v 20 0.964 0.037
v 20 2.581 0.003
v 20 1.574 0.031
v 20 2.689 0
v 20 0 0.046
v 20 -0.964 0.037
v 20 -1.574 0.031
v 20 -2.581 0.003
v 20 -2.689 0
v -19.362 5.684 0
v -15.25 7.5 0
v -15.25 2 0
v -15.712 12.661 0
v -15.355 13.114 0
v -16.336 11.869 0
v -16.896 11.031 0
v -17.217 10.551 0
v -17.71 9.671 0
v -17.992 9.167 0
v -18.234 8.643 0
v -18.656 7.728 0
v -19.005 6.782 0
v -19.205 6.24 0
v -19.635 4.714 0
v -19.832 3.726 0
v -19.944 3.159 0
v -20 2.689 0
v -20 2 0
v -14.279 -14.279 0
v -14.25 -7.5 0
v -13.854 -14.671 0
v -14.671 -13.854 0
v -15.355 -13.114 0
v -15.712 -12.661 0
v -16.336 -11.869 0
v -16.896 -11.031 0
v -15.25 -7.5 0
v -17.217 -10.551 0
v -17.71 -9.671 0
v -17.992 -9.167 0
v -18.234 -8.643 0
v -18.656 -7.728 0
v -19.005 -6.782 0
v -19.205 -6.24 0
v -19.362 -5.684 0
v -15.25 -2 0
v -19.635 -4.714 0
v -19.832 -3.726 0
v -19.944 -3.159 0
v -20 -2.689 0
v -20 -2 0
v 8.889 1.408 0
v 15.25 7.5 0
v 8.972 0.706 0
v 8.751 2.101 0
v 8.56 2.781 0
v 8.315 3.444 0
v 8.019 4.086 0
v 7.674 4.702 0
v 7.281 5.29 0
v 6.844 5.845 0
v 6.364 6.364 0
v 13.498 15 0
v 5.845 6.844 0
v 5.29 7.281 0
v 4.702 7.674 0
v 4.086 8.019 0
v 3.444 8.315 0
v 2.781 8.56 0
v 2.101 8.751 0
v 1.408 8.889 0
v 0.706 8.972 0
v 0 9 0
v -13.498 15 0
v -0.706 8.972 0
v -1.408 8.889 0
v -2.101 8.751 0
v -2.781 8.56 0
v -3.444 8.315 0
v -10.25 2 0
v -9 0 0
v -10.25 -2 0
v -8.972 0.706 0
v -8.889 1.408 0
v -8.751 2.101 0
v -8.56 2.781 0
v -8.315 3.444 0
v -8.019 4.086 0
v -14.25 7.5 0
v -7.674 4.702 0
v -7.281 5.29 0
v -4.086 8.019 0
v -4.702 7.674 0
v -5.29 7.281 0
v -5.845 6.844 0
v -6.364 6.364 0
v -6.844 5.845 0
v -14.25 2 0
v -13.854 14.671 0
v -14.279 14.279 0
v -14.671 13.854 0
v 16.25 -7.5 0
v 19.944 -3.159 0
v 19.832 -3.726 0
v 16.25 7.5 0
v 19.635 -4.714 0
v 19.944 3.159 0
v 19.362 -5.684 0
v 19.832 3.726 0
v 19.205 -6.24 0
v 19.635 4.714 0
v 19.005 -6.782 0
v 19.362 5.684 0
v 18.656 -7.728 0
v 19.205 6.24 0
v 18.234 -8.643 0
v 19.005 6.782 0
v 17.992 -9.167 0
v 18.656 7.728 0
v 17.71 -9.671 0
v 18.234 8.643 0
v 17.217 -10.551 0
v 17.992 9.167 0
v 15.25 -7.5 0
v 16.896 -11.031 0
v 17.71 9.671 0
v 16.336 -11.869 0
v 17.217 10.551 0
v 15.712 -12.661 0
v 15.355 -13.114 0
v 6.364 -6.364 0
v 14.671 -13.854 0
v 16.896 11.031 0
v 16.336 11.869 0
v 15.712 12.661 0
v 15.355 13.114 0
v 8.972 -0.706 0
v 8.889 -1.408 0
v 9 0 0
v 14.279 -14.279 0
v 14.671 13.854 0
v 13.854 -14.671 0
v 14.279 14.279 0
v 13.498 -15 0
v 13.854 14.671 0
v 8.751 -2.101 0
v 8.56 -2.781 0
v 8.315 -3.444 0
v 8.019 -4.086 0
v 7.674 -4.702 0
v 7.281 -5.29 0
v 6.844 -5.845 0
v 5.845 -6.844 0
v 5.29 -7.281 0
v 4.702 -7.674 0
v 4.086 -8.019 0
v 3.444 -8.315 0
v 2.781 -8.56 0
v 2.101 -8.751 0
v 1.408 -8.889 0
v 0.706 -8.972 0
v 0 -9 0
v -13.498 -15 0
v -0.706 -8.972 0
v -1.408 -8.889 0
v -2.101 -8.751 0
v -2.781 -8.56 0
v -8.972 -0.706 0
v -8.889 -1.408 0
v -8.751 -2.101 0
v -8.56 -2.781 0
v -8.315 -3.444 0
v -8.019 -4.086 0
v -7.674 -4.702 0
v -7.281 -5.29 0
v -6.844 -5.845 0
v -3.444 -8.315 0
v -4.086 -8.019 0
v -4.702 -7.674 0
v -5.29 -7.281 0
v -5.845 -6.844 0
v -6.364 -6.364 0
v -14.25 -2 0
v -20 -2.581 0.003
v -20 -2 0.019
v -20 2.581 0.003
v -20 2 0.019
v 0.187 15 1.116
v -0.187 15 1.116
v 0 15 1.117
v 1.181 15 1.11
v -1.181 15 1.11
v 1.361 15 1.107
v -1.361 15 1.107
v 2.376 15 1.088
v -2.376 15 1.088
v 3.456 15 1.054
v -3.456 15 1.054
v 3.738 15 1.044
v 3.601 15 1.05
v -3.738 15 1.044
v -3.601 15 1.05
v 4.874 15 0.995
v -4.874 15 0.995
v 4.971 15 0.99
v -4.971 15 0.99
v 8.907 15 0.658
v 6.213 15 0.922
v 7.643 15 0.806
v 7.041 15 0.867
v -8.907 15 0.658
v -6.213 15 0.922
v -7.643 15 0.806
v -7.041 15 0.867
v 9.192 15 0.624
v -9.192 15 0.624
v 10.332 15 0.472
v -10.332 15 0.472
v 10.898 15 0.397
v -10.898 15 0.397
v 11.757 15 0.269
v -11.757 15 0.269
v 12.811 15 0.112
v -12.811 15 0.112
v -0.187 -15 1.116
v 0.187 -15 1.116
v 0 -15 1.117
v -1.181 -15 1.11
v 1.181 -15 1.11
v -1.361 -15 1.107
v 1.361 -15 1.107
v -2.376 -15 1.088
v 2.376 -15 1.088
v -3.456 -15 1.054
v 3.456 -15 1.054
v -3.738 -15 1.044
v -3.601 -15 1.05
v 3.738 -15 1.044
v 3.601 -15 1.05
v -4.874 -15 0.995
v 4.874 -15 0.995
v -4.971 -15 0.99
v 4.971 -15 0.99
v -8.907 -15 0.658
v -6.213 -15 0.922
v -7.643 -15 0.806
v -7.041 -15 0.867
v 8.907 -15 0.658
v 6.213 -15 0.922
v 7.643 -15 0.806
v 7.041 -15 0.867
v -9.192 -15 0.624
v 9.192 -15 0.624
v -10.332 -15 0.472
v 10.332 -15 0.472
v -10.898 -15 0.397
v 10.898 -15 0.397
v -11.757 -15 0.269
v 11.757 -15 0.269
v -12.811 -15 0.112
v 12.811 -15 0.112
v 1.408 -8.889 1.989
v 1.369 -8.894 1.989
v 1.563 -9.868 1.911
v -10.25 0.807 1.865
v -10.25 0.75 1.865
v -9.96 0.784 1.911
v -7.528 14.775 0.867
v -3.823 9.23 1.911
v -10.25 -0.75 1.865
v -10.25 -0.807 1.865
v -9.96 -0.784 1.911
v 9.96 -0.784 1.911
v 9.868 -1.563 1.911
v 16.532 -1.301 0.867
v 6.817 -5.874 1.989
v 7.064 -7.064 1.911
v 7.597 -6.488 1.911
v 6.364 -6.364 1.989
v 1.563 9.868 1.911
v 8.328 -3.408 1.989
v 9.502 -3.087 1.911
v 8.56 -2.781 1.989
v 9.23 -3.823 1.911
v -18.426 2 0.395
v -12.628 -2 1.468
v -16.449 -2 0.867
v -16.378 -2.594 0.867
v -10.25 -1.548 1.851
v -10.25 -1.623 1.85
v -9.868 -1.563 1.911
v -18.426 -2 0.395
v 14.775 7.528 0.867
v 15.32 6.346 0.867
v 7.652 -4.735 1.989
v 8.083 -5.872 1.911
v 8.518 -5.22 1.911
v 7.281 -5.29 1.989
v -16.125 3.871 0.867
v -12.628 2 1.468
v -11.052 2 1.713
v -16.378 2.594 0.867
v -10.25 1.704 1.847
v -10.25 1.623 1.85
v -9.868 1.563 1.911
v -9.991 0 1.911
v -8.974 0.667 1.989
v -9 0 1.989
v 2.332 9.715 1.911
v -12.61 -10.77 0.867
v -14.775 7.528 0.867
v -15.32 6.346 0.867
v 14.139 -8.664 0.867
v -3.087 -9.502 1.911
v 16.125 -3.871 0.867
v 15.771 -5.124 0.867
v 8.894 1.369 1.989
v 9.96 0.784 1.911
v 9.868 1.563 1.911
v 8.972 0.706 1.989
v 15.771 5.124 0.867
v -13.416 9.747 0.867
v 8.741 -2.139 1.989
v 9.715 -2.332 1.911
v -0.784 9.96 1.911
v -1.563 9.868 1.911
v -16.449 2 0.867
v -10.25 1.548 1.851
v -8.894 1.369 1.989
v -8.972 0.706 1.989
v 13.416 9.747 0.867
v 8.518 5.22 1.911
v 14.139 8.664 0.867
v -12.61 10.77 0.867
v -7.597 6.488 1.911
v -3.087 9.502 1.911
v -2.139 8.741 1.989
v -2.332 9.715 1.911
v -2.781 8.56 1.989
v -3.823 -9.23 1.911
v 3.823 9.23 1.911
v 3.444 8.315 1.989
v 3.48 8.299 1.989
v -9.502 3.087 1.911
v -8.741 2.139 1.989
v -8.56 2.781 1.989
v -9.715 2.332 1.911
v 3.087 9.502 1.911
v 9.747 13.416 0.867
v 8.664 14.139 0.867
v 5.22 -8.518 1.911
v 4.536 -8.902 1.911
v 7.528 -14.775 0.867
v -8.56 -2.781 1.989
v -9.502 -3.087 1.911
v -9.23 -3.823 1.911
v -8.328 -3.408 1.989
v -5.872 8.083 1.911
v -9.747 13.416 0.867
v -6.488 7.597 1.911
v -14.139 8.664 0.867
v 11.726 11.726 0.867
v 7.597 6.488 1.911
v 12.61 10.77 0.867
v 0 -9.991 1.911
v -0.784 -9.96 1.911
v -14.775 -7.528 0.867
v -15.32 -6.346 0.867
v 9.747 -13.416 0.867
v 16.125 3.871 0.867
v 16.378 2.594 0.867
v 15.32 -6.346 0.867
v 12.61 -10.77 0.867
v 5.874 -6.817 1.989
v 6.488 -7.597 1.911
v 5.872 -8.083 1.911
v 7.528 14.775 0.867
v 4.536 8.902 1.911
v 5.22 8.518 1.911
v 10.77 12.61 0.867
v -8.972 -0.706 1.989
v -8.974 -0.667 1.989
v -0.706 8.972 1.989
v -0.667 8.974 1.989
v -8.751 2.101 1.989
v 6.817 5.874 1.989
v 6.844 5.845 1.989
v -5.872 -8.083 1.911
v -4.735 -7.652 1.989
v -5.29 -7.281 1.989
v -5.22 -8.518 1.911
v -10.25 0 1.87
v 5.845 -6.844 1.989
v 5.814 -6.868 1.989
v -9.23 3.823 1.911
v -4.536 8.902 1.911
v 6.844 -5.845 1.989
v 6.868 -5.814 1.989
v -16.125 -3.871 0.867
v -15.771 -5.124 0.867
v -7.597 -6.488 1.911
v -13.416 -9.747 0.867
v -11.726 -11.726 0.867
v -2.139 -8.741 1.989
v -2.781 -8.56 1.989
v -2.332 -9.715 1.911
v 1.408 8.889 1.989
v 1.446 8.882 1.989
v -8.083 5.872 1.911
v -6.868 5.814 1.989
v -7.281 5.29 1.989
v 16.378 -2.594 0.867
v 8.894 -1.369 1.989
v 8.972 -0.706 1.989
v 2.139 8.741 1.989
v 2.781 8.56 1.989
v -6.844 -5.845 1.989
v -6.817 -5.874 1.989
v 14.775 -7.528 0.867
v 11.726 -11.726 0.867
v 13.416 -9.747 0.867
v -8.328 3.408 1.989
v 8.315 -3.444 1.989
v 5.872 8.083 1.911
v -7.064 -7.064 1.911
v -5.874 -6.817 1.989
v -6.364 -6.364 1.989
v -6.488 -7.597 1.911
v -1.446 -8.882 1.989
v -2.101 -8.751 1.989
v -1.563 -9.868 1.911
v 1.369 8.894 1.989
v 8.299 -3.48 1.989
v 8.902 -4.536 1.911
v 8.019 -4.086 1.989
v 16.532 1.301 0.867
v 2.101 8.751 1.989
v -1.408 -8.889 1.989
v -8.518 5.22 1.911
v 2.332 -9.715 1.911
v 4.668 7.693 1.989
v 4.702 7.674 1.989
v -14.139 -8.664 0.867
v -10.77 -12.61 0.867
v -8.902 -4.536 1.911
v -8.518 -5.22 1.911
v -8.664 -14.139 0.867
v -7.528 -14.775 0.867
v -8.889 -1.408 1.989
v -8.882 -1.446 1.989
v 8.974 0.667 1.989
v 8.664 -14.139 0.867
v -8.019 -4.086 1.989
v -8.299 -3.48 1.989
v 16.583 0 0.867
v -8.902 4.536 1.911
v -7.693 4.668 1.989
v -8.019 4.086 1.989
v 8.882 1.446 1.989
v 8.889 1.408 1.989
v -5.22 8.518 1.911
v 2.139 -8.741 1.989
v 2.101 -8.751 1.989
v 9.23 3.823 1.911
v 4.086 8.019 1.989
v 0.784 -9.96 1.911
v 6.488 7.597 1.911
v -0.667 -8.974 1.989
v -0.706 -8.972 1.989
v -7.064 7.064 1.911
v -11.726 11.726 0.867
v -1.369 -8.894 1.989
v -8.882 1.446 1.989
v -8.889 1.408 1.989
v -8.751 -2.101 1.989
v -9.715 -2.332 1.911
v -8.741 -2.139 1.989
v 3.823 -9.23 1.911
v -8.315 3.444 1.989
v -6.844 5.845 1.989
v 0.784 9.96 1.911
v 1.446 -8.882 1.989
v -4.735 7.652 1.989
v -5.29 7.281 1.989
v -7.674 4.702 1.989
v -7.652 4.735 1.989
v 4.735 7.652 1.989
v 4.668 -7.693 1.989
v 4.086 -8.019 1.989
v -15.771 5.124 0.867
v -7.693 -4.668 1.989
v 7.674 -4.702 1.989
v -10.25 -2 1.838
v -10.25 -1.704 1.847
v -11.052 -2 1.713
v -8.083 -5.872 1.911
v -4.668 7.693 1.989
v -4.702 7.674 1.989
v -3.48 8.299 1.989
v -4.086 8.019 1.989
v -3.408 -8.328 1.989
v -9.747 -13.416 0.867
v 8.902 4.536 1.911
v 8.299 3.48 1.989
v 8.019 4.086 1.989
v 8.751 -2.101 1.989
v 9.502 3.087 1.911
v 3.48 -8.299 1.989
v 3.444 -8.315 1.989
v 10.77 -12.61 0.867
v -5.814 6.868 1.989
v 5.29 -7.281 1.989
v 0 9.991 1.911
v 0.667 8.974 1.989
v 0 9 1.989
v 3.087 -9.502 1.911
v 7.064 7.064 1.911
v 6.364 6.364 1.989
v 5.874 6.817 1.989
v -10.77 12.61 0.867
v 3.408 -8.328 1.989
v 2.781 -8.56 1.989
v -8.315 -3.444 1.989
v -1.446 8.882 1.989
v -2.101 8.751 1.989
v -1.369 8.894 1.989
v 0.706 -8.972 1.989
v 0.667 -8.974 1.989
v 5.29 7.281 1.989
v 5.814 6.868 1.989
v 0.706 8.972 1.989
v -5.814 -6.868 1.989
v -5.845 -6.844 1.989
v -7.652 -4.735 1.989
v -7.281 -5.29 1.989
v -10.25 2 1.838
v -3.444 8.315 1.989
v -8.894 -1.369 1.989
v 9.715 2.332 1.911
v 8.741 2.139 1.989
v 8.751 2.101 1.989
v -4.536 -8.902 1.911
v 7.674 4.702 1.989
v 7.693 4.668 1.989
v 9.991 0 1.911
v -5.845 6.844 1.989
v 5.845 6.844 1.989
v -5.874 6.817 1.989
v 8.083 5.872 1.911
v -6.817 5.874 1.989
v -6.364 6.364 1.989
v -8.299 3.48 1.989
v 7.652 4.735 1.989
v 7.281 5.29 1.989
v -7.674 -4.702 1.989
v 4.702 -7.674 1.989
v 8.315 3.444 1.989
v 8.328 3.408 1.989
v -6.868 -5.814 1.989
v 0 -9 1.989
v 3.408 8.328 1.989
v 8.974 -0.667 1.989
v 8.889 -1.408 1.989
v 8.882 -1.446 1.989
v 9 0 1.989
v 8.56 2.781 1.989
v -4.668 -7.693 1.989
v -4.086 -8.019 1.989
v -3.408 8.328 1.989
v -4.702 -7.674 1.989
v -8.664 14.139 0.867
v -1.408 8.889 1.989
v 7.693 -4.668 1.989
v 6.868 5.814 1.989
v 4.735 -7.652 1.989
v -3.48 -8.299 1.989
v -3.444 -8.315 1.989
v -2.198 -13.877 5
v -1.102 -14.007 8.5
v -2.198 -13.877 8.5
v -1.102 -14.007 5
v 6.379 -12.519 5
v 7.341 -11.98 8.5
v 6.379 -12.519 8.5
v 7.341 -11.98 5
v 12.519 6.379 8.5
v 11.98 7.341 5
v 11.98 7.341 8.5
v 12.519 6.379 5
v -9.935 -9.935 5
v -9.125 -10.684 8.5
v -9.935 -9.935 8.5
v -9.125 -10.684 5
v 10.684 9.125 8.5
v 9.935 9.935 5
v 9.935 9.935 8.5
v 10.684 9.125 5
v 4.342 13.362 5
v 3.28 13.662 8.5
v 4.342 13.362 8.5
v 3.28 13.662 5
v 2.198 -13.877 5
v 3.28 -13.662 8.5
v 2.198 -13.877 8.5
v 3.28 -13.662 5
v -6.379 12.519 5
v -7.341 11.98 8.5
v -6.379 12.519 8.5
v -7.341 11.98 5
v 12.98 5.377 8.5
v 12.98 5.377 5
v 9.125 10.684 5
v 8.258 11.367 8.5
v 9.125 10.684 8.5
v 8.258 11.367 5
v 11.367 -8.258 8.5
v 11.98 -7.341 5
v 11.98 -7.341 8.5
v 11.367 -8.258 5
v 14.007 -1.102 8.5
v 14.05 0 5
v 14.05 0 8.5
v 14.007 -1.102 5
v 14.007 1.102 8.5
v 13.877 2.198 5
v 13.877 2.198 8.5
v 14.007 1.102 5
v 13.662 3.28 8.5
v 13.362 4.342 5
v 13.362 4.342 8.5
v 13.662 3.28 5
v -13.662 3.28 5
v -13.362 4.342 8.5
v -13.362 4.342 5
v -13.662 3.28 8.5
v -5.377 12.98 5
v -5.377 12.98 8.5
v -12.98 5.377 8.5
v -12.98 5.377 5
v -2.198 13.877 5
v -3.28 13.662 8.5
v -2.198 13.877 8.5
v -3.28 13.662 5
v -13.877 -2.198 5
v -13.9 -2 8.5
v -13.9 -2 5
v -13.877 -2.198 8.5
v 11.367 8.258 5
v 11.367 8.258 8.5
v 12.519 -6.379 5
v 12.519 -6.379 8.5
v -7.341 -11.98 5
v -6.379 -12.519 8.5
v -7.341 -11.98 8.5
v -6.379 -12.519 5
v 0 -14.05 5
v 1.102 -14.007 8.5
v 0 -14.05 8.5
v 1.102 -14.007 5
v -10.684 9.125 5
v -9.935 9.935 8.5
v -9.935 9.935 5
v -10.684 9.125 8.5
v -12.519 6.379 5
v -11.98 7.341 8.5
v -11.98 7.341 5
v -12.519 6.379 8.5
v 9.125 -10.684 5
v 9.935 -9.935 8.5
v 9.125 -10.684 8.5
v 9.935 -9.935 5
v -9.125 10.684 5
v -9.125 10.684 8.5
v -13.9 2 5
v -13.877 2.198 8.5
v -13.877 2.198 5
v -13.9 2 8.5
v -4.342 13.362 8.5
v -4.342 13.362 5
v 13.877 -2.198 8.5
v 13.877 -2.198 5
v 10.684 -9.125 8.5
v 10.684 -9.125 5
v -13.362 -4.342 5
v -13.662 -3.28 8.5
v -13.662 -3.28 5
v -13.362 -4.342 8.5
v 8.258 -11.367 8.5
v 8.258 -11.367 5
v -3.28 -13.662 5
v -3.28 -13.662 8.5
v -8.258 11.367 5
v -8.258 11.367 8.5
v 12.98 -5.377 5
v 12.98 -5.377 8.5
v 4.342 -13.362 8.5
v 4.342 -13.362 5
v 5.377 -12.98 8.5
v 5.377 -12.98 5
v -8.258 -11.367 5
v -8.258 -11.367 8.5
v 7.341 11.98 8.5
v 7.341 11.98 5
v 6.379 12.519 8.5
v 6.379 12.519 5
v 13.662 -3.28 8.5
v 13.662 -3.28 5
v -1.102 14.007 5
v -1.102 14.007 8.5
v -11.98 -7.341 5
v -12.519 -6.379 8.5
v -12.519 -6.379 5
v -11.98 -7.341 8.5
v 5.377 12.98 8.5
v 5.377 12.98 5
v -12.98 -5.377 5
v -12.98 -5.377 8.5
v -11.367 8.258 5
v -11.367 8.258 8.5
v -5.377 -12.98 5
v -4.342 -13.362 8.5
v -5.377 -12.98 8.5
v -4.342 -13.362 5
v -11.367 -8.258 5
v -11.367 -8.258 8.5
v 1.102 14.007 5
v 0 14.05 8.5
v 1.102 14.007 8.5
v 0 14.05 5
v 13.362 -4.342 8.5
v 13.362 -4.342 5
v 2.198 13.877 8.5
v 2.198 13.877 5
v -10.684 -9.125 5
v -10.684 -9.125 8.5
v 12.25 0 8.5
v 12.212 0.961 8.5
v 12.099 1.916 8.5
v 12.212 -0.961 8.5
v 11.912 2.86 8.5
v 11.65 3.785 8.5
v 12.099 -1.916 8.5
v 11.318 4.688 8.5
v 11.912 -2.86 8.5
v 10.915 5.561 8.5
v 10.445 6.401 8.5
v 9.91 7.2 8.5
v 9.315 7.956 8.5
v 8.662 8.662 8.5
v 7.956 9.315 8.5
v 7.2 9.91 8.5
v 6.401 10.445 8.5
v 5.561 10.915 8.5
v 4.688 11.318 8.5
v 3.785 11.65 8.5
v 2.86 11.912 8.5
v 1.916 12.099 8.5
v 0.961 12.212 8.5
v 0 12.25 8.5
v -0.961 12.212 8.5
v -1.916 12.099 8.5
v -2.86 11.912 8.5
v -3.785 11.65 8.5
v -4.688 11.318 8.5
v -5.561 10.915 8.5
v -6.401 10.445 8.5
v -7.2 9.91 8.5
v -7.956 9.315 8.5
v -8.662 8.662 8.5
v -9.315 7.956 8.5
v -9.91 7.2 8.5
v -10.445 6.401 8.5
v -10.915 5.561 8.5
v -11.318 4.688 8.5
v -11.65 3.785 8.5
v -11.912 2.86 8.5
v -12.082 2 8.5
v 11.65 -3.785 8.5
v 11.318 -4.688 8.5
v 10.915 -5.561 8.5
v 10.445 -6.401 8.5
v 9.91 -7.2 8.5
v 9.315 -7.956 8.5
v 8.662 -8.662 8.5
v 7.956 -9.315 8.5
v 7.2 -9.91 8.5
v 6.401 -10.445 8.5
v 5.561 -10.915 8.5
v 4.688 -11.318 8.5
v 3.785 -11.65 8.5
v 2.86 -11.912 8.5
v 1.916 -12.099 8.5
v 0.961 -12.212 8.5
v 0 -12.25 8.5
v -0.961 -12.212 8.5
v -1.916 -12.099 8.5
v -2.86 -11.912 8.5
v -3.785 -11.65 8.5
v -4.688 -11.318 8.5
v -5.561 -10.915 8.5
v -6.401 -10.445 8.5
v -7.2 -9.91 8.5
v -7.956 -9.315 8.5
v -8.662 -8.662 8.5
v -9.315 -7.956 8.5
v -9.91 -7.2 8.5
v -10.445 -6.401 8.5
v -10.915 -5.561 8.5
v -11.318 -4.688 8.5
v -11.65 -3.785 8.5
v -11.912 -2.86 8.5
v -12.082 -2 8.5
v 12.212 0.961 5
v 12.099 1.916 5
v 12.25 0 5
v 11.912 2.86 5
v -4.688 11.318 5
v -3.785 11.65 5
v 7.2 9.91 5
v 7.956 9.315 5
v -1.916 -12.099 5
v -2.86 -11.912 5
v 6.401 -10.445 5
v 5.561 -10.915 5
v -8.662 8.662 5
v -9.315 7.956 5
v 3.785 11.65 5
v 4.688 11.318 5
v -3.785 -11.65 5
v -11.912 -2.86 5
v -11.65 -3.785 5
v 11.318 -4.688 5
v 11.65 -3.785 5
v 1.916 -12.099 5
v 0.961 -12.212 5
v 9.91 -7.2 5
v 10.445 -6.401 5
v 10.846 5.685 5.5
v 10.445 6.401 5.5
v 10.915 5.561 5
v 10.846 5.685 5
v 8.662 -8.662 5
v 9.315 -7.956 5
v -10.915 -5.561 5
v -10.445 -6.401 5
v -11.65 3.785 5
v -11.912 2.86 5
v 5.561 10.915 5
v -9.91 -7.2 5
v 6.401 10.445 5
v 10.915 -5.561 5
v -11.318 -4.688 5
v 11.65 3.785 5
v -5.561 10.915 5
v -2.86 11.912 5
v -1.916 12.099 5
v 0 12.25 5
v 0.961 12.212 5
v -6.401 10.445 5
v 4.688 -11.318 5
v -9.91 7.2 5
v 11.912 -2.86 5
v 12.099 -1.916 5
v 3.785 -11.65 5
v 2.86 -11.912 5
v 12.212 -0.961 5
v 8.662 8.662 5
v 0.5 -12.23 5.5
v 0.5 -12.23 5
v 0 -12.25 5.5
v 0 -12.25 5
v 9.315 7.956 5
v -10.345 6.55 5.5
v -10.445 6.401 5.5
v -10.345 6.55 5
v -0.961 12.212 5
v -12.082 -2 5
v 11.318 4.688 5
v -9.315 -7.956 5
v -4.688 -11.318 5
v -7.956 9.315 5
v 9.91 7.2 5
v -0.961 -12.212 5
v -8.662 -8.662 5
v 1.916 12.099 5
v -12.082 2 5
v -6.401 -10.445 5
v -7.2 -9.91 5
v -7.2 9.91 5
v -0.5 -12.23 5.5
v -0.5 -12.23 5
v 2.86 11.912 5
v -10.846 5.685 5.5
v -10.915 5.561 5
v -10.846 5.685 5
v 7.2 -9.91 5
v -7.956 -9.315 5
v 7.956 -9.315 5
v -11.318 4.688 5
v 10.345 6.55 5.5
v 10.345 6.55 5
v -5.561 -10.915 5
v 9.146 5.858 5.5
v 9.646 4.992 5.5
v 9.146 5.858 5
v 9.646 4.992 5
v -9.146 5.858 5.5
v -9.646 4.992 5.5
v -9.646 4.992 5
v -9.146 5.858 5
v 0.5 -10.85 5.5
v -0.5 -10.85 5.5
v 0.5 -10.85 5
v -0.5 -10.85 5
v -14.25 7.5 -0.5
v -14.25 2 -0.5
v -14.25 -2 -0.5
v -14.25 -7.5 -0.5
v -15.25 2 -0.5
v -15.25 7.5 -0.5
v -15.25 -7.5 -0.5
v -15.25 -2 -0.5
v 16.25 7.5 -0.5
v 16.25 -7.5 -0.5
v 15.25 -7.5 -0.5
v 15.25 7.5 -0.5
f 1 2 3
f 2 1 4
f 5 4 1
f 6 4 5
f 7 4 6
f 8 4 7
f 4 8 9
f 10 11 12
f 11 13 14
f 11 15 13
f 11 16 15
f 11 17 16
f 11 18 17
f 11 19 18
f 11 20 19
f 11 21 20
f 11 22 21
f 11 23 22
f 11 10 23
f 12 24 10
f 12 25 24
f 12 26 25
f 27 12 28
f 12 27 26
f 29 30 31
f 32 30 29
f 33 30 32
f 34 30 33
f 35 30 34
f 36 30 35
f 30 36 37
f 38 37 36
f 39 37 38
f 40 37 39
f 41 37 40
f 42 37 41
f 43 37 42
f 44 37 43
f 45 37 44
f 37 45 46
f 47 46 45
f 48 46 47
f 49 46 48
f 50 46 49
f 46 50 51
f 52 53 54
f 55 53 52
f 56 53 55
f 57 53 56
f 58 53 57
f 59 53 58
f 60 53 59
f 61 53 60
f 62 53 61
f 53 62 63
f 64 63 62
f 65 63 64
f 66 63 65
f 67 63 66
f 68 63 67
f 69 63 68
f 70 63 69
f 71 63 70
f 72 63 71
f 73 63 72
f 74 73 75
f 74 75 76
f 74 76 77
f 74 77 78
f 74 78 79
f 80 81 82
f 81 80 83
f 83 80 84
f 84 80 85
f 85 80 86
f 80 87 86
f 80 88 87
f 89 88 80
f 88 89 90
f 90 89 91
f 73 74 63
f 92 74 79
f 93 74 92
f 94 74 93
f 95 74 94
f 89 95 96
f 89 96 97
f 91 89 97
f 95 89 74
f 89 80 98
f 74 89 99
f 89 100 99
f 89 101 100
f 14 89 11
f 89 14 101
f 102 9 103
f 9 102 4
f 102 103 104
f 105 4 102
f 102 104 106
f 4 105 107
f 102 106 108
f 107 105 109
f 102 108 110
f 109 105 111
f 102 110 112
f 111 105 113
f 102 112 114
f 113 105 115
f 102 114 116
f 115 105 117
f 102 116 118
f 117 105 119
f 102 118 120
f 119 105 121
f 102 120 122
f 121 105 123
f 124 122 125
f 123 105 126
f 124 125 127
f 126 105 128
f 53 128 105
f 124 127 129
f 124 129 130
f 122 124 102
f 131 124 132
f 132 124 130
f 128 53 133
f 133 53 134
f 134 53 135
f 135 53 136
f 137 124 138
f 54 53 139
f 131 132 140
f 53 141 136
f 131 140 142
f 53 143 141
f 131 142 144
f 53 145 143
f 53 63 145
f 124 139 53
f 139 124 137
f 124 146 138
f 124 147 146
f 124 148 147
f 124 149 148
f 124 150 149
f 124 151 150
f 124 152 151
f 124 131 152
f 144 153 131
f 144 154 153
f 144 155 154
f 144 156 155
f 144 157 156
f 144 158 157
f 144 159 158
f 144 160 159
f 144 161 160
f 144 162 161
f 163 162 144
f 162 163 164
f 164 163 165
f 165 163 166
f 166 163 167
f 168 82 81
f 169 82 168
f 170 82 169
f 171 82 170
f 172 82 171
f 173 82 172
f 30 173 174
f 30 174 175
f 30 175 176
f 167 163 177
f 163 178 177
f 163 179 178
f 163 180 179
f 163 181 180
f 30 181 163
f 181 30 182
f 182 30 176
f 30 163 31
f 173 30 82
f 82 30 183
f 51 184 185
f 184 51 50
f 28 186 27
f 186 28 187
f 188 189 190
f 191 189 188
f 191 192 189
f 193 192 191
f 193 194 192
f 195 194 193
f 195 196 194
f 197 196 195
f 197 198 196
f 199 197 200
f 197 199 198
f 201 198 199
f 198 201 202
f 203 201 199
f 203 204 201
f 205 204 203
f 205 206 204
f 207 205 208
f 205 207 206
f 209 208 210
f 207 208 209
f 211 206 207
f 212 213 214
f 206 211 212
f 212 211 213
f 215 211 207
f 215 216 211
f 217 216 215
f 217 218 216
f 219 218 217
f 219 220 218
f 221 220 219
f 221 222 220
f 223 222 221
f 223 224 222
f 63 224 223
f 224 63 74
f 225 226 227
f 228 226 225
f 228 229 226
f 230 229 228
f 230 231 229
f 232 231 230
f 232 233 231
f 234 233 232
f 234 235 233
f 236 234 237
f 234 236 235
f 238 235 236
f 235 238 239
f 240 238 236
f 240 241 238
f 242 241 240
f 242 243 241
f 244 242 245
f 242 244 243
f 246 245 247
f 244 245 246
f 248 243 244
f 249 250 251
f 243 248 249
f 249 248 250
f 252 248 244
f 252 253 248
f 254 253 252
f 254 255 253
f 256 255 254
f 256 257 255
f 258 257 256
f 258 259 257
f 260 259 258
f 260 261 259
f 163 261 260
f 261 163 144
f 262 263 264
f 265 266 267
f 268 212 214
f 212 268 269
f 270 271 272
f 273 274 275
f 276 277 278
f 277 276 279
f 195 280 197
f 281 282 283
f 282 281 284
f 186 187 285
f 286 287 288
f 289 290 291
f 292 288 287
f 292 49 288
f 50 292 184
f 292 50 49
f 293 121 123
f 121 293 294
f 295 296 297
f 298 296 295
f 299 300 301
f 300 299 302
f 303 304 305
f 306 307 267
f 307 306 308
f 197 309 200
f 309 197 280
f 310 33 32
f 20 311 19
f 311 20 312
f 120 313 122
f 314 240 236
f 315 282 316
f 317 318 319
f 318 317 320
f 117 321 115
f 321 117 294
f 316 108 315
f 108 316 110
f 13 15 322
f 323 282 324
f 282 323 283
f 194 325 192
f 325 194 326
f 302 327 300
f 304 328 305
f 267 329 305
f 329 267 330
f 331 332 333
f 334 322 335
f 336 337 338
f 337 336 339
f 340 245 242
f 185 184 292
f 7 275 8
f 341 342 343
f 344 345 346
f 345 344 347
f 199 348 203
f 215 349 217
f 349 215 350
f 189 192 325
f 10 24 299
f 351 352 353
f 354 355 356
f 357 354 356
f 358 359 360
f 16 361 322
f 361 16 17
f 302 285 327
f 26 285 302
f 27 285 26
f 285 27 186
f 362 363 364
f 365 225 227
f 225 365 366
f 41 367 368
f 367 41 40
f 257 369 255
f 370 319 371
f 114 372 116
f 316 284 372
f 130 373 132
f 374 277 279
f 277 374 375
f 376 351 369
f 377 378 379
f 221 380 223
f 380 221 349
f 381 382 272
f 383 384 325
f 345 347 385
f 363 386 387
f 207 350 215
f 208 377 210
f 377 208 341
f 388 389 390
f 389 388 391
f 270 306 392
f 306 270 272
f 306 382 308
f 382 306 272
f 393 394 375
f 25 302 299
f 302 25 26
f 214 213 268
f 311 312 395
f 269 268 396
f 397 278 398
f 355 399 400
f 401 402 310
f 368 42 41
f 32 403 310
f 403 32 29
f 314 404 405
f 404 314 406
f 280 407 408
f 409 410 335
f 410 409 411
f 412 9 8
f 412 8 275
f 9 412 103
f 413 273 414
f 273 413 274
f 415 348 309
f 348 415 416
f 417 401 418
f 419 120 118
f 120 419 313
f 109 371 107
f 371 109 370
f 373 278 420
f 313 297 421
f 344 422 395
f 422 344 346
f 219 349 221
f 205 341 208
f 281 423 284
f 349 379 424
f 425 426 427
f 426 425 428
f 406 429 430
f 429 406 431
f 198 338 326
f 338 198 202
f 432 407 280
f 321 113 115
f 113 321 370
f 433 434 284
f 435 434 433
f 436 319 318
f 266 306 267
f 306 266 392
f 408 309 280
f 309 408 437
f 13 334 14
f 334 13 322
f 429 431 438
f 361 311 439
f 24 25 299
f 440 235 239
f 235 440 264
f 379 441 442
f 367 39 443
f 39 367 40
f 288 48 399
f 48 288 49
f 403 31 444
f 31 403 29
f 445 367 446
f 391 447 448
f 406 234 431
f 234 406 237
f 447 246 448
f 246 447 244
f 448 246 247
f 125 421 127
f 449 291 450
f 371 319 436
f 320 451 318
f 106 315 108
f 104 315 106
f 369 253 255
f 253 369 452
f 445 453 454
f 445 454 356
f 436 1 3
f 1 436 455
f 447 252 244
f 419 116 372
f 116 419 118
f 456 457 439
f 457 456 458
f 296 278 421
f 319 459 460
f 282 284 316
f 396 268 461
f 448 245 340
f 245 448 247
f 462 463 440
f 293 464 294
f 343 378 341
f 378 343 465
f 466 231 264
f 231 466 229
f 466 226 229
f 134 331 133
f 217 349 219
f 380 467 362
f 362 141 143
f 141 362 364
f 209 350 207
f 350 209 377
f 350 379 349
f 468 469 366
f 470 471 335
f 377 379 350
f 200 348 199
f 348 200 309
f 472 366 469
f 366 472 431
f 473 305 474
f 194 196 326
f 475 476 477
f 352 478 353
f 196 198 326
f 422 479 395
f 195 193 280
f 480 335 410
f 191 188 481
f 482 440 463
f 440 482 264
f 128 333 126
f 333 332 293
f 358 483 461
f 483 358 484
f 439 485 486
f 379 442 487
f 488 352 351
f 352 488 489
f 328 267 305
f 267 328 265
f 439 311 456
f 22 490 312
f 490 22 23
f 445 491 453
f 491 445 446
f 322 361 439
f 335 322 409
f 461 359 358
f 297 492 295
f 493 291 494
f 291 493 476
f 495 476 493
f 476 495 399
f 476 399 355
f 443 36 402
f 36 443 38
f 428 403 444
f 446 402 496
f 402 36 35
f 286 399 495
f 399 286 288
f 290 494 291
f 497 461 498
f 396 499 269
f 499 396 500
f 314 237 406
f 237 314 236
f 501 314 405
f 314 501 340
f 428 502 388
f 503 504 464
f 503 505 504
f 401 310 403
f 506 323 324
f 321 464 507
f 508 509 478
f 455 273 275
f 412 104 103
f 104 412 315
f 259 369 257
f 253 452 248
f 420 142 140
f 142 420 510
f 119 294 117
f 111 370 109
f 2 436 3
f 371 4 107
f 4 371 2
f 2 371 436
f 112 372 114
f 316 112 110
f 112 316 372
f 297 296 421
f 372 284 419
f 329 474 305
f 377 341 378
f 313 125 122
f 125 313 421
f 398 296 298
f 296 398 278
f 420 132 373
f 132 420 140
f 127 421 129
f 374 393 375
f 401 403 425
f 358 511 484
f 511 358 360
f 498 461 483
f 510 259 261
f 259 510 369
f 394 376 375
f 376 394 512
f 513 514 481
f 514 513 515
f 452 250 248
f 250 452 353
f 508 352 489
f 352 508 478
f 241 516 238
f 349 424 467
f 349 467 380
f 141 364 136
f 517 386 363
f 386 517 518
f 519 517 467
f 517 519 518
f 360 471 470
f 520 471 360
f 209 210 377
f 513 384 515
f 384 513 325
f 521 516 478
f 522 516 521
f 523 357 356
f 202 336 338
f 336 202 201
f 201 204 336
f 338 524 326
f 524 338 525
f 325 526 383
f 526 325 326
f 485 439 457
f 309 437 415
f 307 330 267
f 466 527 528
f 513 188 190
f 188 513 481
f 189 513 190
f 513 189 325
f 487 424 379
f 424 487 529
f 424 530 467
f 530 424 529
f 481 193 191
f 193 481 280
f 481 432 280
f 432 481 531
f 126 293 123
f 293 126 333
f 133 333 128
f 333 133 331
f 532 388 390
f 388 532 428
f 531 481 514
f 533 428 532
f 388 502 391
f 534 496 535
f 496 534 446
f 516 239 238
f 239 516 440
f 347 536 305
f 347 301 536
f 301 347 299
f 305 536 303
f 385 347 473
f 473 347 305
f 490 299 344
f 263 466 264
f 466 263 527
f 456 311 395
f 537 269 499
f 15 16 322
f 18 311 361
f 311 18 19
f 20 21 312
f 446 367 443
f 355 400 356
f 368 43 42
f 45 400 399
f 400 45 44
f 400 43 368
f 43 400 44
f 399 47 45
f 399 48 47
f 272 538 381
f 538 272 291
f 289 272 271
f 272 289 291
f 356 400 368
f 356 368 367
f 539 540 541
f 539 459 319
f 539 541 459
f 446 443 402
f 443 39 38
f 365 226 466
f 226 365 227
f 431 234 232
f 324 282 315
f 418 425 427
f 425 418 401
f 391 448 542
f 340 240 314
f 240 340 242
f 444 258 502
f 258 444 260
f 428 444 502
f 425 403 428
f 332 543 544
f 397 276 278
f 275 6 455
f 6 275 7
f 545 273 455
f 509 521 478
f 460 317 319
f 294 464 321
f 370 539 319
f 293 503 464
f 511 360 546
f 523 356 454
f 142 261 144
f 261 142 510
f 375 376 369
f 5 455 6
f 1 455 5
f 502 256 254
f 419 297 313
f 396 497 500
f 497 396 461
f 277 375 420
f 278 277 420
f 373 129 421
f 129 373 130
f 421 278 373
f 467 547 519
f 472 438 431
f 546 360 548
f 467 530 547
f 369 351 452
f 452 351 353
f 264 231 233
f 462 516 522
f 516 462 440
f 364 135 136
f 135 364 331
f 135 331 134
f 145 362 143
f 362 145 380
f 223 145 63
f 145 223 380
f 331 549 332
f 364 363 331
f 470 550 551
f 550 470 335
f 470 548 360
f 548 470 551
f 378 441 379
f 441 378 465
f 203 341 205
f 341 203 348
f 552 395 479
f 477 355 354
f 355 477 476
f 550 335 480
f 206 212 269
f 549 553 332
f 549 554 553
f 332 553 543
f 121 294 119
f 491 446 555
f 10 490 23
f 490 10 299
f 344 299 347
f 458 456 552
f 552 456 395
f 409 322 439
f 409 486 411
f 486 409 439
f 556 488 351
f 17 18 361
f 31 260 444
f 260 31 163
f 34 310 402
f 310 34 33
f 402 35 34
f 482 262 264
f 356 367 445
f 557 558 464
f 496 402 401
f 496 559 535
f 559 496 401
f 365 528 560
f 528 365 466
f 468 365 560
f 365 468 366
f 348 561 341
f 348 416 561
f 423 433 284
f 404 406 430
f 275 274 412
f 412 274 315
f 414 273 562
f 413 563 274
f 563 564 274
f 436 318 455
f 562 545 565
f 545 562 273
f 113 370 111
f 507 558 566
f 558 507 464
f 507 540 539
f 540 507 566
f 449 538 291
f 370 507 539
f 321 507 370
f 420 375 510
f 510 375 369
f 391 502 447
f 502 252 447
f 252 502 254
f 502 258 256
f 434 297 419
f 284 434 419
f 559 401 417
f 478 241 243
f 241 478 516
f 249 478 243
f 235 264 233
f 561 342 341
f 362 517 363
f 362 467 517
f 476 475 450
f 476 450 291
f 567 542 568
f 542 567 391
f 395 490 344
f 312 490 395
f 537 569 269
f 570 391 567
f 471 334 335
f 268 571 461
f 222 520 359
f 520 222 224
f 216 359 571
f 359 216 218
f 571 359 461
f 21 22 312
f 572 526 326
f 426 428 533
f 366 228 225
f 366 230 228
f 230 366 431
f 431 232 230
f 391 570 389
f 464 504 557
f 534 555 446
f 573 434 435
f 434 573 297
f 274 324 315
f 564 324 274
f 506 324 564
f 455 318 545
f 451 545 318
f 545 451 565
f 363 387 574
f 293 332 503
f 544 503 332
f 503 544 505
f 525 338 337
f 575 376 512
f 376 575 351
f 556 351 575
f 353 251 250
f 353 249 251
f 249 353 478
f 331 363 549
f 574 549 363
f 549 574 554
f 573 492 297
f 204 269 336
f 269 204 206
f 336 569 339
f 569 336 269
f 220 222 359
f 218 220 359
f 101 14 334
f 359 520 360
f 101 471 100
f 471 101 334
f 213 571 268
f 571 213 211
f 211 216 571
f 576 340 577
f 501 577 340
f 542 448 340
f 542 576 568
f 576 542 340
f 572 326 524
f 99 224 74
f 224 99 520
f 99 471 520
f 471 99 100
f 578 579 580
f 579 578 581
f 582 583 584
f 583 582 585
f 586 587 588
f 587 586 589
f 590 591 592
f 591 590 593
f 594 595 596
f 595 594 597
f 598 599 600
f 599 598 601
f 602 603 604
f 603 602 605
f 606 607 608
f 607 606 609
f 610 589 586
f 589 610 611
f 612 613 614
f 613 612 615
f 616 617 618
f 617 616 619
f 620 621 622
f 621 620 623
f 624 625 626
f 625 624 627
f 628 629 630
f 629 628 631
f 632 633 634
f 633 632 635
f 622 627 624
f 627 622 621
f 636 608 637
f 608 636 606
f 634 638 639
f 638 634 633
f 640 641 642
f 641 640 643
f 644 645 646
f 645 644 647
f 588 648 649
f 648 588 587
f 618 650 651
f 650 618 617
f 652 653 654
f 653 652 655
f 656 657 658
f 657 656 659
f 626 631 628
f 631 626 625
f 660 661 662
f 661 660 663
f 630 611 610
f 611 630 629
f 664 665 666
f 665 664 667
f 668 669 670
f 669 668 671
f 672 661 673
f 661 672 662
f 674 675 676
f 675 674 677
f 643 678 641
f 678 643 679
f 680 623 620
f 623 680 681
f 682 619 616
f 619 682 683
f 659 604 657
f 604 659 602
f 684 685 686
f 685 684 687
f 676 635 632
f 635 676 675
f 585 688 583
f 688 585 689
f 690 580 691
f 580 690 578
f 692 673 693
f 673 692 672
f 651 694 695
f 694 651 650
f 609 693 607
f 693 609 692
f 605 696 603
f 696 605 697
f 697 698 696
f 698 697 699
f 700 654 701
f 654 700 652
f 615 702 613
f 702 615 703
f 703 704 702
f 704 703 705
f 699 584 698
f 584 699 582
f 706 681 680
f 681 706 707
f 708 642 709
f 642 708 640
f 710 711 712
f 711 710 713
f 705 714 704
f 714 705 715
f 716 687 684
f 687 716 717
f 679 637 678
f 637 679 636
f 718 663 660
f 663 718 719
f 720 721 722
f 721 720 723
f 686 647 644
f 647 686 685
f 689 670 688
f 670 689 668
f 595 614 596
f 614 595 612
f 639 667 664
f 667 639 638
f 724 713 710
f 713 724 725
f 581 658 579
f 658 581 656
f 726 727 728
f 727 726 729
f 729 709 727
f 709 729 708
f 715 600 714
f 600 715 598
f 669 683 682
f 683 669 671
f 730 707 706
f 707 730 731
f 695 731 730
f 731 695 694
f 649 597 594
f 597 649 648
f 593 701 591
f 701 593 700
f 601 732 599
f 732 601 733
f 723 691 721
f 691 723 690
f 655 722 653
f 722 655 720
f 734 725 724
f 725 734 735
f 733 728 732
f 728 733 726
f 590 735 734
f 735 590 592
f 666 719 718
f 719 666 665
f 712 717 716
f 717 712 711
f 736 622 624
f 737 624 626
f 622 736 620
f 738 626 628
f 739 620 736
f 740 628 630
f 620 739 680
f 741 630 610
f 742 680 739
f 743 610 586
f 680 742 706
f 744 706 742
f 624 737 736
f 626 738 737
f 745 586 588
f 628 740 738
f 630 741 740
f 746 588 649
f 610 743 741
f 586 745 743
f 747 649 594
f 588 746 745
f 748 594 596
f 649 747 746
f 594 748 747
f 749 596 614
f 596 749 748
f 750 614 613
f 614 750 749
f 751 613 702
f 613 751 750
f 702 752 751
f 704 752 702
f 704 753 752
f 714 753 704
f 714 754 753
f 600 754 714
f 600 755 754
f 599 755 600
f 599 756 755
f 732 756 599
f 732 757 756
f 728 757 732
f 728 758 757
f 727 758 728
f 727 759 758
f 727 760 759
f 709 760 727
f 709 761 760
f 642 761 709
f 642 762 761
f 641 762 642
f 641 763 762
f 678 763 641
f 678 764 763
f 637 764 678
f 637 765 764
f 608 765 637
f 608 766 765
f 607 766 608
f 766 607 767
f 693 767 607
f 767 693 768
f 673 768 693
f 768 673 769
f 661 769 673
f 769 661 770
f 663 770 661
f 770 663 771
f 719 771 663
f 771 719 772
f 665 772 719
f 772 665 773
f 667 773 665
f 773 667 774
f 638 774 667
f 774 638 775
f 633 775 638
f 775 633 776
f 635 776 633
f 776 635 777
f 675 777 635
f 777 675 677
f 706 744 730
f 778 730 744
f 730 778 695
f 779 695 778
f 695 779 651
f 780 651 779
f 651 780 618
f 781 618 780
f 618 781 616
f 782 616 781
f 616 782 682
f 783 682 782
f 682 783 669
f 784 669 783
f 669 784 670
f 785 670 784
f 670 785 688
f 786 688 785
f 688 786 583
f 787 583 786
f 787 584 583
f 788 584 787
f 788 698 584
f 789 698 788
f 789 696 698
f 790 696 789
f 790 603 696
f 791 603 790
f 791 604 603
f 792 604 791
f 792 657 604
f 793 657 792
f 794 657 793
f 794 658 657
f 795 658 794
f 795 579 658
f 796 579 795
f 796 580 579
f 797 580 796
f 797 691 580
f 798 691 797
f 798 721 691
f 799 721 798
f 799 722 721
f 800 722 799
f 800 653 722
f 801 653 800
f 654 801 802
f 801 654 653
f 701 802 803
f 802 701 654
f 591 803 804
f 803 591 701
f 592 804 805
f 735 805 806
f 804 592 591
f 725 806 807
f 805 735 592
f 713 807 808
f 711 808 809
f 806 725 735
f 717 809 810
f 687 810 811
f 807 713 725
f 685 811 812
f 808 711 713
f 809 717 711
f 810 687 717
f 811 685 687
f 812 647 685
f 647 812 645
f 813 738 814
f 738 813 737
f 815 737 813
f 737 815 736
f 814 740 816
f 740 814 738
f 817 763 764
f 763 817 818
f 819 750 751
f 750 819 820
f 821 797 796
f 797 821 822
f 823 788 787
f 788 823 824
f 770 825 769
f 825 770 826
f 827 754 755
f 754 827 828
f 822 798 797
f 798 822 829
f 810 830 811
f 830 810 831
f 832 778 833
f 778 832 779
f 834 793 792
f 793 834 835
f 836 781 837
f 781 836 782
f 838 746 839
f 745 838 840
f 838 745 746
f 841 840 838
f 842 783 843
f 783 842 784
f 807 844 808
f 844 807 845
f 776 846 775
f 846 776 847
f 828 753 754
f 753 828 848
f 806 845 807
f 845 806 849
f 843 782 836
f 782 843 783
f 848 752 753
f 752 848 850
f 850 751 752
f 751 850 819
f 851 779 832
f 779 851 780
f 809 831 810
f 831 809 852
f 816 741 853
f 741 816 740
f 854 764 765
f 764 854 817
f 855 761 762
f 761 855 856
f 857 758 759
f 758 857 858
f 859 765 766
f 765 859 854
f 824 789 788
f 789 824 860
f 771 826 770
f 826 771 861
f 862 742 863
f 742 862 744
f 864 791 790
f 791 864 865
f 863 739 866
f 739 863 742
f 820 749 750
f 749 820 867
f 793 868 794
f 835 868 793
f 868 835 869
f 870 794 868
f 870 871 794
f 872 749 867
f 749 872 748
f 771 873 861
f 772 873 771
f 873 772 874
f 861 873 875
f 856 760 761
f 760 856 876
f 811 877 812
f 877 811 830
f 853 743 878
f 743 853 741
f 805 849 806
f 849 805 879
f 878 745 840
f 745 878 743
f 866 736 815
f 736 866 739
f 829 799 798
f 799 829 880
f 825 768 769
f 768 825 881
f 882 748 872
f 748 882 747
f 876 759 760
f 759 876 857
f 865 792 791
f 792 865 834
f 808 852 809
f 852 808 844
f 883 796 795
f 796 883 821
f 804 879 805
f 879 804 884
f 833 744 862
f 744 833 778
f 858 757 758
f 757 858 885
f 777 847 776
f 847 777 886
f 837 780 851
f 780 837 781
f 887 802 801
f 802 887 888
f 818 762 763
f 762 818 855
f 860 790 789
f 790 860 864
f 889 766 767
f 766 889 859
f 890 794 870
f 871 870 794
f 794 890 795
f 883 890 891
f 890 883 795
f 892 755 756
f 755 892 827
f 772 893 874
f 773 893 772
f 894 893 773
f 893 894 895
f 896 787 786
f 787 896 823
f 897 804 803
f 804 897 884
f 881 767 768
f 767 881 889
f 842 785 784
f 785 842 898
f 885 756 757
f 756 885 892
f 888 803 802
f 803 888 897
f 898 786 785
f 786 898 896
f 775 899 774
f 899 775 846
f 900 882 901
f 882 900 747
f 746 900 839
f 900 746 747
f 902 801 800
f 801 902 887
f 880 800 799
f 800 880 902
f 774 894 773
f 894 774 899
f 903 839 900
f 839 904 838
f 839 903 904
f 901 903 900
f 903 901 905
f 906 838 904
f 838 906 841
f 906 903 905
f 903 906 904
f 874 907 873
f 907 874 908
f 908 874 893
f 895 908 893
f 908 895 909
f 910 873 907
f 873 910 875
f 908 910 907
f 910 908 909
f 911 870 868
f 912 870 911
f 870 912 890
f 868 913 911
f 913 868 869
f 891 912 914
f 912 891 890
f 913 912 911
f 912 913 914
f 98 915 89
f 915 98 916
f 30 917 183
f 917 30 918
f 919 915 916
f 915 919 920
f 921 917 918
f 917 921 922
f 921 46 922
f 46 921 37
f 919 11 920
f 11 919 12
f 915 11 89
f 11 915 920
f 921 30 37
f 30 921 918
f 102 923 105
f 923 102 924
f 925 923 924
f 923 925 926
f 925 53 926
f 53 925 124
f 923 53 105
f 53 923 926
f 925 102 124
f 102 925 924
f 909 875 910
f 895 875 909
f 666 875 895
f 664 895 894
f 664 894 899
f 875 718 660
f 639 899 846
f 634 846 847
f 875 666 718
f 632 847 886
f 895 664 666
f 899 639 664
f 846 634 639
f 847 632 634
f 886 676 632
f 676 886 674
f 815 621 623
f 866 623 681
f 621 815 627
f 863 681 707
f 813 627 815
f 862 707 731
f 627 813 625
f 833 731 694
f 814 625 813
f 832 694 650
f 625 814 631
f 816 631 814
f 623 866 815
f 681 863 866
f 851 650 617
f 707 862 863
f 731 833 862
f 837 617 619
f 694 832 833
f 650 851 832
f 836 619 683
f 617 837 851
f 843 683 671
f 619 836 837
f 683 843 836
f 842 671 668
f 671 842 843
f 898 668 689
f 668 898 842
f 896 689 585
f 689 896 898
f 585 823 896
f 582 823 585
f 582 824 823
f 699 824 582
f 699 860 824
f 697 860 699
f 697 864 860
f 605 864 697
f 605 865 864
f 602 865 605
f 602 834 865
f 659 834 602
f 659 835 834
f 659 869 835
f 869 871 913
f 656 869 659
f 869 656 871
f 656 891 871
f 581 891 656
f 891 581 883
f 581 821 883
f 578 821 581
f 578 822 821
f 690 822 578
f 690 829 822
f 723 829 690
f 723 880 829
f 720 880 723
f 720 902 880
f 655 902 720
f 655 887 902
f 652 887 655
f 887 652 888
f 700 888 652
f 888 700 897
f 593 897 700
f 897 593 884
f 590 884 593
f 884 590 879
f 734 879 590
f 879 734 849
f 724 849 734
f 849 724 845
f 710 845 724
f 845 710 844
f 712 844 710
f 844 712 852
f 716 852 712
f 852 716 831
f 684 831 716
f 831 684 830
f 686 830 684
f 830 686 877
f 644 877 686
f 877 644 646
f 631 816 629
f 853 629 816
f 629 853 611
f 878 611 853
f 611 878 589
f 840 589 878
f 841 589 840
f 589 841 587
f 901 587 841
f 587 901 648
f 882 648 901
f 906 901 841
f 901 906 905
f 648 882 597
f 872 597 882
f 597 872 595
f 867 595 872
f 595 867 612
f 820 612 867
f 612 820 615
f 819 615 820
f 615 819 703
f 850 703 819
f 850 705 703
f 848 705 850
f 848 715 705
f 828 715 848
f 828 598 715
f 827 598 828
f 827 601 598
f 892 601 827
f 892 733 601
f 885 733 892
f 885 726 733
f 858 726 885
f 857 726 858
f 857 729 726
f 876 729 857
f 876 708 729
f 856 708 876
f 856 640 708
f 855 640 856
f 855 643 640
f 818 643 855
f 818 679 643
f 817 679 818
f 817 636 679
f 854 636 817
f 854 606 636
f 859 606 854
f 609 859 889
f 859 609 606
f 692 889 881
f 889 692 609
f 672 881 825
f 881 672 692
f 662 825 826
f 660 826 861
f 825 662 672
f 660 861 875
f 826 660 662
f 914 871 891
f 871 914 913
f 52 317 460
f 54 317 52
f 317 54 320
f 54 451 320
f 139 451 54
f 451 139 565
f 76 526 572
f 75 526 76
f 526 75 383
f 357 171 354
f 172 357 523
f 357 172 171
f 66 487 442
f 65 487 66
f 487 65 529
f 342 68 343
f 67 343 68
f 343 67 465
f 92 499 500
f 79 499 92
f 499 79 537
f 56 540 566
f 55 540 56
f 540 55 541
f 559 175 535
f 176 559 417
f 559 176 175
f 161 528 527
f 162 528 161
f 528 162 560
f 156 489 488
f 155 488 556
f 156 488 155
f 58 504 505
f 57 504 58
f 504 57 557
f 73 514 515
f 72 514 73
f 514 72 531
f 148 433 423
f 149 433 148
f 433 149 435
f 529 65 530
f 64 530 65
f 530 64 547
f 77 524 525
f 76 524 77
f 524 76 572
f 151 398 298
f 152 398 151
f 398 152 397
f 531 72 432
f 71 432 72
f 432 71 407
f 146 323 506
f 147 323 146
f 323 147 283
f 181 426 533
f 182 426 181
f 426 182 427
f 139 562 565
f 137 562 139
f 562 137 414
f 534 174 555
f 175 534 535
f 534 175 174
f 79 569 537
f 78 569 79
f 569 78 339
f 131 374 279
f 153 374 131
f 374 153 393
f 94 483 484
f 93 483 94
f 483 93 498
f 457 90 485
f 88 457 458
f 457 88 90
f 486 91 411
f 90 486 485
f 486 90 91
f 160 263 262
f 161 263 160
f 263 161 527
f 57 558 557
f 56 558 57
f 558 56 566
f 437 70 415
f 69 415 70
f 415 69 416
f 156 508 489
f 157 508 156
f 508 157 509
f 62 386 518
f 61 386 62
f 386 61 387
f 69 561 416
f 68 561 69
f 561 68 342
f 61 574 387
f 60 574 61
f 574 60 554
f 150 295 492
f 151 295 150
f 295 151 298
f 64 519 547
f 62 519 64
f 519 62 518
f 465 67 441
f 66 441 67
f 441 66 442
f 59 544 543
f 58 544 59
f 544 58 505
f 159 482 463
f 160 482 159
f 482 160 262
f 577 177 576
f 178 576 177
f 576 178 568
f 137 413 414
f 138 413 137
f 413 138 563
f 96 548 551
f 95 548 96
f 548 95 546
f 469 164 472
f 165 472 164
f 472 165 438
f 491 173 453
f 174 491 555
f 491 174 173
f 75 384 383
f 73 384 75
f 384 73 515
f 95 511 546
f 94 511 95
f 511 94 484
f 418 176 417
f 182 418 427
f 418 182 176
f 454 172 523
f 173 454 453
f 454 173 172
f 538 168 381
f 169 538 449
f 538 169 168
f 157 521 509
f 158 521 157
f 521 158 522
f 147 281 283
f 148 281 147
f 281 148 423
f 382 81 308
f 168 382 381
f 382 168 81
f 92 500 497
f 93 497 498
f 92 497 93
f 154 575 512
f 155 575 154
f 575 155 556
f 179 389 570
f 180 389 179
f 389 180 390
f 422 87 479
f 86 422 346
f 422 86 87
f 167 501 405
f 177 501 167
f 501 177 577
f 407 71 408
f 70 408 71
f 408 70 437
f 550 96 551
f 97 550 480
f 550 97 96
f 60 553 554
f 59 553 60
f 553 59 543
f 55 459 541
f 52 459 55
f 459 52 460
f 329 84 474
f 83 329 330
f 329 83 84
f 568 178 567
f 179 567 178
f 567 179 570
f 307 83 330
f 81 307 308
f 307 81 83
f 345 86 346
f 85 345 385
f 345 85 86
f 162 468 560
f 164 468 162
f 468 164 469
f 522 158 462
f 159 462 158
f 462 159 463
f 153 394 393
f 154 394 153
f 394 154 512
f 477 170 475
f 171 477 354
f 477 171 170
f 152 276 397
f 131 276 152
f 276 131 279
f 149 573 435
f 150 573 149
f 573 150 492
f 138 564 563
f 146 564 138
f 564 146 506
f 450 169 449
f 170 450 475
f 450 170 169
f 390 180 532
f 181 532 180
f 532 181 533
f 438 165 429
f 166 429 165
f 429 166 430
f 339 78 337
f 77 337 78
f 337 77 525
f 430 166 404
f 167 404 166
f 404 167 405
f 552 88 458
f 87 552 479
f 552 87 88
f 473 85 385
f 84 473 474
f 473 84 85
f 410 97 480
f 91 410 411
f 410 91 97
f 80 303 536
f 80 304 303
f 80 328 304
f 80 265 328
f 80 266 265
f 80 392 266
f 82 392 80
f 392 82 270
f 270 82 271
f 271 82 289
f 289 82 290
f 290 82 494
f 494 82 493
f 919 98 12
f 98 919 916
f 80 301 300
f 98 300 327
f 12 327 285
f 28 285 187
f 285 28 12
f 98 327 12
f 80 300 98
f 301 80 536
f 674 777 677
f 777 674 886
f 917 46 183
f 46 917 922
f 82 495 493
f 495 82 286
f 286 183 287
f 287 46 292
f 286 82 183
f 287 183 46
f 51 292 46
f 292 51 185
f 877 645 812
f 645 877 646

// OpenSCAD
// ============================================================
// EpiScreen Adult Headband Mount — Forehead EEG Electrode
// Adjustable elastic headband mounting for 24mm electrode
// ============================================================

// --- Head curvature (parametric — adjust for different sizes) ---
head_radius         = 85;        // forehead radius of curvature (mm)
                                 // Typical adult range: 75-95mm

// --- Central forehead piece ---
plate_w             = 40;        // width (along headband axis)
plate_h             = 30;        // height (vertical on forehead)
plate_t             = 2.5;       // wall thickness

// --- Electrode pocket ---
pocket_dia          = 24.5;      // 24mm electrode + 0.5mm clearance
pocket_r            = pocket_dia / 2;
pocket_depth        = 6;
skin_hole_dia       = 18;        // opening for electrode pad
skin_hole_r         = skin_hole_dia / 2;

// --- Retention clips ---
clip_count          = 3;
clip_width          = 1.0;
clip_height         = 3.0;
clip_thickness      = 0.8;
clip_overhang       = 0.6;

// --- Cable exit ---
cable_groove_w      = 4.0;
cable_groove_d      = 3.0;       // depth of groove

// --- Band slots ---
band_width          = 25;        // elastic band width
band_slot_h         = 3;         // slot height (band thickness + clearance)
band_slot_inset     = 2;         // distance from plate edge to slot

// --- Pressure distribution ribs ---
rib_length          = 15;
rib_width           = 1.0;
rib_height          = 0.5;
rib_offset          = pocket_r + 3;  // distance from center

// --- Misc ---
fillet_r            = 0.3;
$fn                 = 80;

// ============================================================
// Curved plate — matches forehead curvature
// Outer surface concave (toward head), electrode side convex
// ============================================================
module curved_plate() {
    intersection() {
        // Bounding box
        translate([-plate_w/2, -plate_h/2, 0])
            cube([plate_w, plate_h, plate_t + 10]);

        // Sphere for curvature — center behind plate
        translate([0, 0, -head_radius + plate_t])
            sphere(r = head_radius);
    }
}

// ============================================================
// Pocket wall — cylindrical wall for electrode recess
// Rises from the outer (non-skin) side of the plate
// ============================================================
module pocket_wall() {
    wall_t = 1.8;
    translate([0, 0, plate_t]) {
        difference() {
            cylinder(r = pocket_r + wall_t, h = pocket_depth);
            translate([0, 0, -0.01])
                cylinder(r = pocket_r, h = pocket_depth + 0.02);
        }
    }
}

// ============================================================
// Skin-side hole — electrode pad protrudes through this
// ============================================================
module skin_hole() {
    translate([0, 0, -5])
        cylinder(r = skin_hole_r, h = plate_t + 12);
}

// ============================================================
// Retention clips — snap-fit inside pocket wall
// ============================================================
module retention_clips() {
    for (i = [0 : clip_count - 1]) {
        angle = i * 360 / clip_count + 30;  // offset from cable exit
        rotate([0, 0, angle])
            translate([pocket_r - clip_thickness, -clip_width/2,
                       plate_t]) {
                // Clip body
                cube([clip_thickness, clip_width, clip_height]);
                // Overhang tip
                translate([-clip_overhang, 0, clip_height - 0.8])
                    cube([clip_overhang + 0.01, clip_width, 0.8]);
            }
    }
}

// ============================================================
// Cable exit groove — exits to left side (-X direction)
// ============================================================
module cable_exit_groove() {
    translate([-plate_w/2 - 1, -cable_groove_w/2, plate_t - cable_groove_d])
        cube([plate_w/2 + 1 - pocket_r + 2, cable_groove_w,
              cable_groove_d + pocket_depth + 1]);
}

// ============================================================
// Band threading slots — left and right sides of plate
// Elastic band threads through these slots
// ============================================================
module band_slots() {
    for (side = [-1, 1]) {
        // Slot position: near left/right edge, vertically centered
        translate([side * (plate_w/2 - band_slot_inset - band_width/2),
                   0, 0]) {
            // Horizontal slot through the plate + pocket wall area
            translate([-band_width/2, -plate_h/2 - 1, plate_t - 0.5])
                cube([band_width, plate_h + 2, band_slot_h]);
        }
    }
}

// ============================================================
// Pressure distribution ribs — prevent rocking on forehead
// Small ridges on the skin-facing surface flanking the pocket
// ============================================================
module pressure_ribs() {
    for (side = [-1, 1]) {
        translate([side * rib_offset, -rib_length/2, -rib_height])
            cube([rib_width, rib_length, rib_height + 0.01]);
    }
}

// ============================================================
// Full assembly
// ============================================================
module adult_headband_mount() {
    difference() {
        union() {
            curved_plate();
            pocket_wall();
            retention_clips();
            pressure_ribs();
        }

        skin_hole();
        cable_exit_groove();
        band_slots();
    }
}

adult_headband_mount();
